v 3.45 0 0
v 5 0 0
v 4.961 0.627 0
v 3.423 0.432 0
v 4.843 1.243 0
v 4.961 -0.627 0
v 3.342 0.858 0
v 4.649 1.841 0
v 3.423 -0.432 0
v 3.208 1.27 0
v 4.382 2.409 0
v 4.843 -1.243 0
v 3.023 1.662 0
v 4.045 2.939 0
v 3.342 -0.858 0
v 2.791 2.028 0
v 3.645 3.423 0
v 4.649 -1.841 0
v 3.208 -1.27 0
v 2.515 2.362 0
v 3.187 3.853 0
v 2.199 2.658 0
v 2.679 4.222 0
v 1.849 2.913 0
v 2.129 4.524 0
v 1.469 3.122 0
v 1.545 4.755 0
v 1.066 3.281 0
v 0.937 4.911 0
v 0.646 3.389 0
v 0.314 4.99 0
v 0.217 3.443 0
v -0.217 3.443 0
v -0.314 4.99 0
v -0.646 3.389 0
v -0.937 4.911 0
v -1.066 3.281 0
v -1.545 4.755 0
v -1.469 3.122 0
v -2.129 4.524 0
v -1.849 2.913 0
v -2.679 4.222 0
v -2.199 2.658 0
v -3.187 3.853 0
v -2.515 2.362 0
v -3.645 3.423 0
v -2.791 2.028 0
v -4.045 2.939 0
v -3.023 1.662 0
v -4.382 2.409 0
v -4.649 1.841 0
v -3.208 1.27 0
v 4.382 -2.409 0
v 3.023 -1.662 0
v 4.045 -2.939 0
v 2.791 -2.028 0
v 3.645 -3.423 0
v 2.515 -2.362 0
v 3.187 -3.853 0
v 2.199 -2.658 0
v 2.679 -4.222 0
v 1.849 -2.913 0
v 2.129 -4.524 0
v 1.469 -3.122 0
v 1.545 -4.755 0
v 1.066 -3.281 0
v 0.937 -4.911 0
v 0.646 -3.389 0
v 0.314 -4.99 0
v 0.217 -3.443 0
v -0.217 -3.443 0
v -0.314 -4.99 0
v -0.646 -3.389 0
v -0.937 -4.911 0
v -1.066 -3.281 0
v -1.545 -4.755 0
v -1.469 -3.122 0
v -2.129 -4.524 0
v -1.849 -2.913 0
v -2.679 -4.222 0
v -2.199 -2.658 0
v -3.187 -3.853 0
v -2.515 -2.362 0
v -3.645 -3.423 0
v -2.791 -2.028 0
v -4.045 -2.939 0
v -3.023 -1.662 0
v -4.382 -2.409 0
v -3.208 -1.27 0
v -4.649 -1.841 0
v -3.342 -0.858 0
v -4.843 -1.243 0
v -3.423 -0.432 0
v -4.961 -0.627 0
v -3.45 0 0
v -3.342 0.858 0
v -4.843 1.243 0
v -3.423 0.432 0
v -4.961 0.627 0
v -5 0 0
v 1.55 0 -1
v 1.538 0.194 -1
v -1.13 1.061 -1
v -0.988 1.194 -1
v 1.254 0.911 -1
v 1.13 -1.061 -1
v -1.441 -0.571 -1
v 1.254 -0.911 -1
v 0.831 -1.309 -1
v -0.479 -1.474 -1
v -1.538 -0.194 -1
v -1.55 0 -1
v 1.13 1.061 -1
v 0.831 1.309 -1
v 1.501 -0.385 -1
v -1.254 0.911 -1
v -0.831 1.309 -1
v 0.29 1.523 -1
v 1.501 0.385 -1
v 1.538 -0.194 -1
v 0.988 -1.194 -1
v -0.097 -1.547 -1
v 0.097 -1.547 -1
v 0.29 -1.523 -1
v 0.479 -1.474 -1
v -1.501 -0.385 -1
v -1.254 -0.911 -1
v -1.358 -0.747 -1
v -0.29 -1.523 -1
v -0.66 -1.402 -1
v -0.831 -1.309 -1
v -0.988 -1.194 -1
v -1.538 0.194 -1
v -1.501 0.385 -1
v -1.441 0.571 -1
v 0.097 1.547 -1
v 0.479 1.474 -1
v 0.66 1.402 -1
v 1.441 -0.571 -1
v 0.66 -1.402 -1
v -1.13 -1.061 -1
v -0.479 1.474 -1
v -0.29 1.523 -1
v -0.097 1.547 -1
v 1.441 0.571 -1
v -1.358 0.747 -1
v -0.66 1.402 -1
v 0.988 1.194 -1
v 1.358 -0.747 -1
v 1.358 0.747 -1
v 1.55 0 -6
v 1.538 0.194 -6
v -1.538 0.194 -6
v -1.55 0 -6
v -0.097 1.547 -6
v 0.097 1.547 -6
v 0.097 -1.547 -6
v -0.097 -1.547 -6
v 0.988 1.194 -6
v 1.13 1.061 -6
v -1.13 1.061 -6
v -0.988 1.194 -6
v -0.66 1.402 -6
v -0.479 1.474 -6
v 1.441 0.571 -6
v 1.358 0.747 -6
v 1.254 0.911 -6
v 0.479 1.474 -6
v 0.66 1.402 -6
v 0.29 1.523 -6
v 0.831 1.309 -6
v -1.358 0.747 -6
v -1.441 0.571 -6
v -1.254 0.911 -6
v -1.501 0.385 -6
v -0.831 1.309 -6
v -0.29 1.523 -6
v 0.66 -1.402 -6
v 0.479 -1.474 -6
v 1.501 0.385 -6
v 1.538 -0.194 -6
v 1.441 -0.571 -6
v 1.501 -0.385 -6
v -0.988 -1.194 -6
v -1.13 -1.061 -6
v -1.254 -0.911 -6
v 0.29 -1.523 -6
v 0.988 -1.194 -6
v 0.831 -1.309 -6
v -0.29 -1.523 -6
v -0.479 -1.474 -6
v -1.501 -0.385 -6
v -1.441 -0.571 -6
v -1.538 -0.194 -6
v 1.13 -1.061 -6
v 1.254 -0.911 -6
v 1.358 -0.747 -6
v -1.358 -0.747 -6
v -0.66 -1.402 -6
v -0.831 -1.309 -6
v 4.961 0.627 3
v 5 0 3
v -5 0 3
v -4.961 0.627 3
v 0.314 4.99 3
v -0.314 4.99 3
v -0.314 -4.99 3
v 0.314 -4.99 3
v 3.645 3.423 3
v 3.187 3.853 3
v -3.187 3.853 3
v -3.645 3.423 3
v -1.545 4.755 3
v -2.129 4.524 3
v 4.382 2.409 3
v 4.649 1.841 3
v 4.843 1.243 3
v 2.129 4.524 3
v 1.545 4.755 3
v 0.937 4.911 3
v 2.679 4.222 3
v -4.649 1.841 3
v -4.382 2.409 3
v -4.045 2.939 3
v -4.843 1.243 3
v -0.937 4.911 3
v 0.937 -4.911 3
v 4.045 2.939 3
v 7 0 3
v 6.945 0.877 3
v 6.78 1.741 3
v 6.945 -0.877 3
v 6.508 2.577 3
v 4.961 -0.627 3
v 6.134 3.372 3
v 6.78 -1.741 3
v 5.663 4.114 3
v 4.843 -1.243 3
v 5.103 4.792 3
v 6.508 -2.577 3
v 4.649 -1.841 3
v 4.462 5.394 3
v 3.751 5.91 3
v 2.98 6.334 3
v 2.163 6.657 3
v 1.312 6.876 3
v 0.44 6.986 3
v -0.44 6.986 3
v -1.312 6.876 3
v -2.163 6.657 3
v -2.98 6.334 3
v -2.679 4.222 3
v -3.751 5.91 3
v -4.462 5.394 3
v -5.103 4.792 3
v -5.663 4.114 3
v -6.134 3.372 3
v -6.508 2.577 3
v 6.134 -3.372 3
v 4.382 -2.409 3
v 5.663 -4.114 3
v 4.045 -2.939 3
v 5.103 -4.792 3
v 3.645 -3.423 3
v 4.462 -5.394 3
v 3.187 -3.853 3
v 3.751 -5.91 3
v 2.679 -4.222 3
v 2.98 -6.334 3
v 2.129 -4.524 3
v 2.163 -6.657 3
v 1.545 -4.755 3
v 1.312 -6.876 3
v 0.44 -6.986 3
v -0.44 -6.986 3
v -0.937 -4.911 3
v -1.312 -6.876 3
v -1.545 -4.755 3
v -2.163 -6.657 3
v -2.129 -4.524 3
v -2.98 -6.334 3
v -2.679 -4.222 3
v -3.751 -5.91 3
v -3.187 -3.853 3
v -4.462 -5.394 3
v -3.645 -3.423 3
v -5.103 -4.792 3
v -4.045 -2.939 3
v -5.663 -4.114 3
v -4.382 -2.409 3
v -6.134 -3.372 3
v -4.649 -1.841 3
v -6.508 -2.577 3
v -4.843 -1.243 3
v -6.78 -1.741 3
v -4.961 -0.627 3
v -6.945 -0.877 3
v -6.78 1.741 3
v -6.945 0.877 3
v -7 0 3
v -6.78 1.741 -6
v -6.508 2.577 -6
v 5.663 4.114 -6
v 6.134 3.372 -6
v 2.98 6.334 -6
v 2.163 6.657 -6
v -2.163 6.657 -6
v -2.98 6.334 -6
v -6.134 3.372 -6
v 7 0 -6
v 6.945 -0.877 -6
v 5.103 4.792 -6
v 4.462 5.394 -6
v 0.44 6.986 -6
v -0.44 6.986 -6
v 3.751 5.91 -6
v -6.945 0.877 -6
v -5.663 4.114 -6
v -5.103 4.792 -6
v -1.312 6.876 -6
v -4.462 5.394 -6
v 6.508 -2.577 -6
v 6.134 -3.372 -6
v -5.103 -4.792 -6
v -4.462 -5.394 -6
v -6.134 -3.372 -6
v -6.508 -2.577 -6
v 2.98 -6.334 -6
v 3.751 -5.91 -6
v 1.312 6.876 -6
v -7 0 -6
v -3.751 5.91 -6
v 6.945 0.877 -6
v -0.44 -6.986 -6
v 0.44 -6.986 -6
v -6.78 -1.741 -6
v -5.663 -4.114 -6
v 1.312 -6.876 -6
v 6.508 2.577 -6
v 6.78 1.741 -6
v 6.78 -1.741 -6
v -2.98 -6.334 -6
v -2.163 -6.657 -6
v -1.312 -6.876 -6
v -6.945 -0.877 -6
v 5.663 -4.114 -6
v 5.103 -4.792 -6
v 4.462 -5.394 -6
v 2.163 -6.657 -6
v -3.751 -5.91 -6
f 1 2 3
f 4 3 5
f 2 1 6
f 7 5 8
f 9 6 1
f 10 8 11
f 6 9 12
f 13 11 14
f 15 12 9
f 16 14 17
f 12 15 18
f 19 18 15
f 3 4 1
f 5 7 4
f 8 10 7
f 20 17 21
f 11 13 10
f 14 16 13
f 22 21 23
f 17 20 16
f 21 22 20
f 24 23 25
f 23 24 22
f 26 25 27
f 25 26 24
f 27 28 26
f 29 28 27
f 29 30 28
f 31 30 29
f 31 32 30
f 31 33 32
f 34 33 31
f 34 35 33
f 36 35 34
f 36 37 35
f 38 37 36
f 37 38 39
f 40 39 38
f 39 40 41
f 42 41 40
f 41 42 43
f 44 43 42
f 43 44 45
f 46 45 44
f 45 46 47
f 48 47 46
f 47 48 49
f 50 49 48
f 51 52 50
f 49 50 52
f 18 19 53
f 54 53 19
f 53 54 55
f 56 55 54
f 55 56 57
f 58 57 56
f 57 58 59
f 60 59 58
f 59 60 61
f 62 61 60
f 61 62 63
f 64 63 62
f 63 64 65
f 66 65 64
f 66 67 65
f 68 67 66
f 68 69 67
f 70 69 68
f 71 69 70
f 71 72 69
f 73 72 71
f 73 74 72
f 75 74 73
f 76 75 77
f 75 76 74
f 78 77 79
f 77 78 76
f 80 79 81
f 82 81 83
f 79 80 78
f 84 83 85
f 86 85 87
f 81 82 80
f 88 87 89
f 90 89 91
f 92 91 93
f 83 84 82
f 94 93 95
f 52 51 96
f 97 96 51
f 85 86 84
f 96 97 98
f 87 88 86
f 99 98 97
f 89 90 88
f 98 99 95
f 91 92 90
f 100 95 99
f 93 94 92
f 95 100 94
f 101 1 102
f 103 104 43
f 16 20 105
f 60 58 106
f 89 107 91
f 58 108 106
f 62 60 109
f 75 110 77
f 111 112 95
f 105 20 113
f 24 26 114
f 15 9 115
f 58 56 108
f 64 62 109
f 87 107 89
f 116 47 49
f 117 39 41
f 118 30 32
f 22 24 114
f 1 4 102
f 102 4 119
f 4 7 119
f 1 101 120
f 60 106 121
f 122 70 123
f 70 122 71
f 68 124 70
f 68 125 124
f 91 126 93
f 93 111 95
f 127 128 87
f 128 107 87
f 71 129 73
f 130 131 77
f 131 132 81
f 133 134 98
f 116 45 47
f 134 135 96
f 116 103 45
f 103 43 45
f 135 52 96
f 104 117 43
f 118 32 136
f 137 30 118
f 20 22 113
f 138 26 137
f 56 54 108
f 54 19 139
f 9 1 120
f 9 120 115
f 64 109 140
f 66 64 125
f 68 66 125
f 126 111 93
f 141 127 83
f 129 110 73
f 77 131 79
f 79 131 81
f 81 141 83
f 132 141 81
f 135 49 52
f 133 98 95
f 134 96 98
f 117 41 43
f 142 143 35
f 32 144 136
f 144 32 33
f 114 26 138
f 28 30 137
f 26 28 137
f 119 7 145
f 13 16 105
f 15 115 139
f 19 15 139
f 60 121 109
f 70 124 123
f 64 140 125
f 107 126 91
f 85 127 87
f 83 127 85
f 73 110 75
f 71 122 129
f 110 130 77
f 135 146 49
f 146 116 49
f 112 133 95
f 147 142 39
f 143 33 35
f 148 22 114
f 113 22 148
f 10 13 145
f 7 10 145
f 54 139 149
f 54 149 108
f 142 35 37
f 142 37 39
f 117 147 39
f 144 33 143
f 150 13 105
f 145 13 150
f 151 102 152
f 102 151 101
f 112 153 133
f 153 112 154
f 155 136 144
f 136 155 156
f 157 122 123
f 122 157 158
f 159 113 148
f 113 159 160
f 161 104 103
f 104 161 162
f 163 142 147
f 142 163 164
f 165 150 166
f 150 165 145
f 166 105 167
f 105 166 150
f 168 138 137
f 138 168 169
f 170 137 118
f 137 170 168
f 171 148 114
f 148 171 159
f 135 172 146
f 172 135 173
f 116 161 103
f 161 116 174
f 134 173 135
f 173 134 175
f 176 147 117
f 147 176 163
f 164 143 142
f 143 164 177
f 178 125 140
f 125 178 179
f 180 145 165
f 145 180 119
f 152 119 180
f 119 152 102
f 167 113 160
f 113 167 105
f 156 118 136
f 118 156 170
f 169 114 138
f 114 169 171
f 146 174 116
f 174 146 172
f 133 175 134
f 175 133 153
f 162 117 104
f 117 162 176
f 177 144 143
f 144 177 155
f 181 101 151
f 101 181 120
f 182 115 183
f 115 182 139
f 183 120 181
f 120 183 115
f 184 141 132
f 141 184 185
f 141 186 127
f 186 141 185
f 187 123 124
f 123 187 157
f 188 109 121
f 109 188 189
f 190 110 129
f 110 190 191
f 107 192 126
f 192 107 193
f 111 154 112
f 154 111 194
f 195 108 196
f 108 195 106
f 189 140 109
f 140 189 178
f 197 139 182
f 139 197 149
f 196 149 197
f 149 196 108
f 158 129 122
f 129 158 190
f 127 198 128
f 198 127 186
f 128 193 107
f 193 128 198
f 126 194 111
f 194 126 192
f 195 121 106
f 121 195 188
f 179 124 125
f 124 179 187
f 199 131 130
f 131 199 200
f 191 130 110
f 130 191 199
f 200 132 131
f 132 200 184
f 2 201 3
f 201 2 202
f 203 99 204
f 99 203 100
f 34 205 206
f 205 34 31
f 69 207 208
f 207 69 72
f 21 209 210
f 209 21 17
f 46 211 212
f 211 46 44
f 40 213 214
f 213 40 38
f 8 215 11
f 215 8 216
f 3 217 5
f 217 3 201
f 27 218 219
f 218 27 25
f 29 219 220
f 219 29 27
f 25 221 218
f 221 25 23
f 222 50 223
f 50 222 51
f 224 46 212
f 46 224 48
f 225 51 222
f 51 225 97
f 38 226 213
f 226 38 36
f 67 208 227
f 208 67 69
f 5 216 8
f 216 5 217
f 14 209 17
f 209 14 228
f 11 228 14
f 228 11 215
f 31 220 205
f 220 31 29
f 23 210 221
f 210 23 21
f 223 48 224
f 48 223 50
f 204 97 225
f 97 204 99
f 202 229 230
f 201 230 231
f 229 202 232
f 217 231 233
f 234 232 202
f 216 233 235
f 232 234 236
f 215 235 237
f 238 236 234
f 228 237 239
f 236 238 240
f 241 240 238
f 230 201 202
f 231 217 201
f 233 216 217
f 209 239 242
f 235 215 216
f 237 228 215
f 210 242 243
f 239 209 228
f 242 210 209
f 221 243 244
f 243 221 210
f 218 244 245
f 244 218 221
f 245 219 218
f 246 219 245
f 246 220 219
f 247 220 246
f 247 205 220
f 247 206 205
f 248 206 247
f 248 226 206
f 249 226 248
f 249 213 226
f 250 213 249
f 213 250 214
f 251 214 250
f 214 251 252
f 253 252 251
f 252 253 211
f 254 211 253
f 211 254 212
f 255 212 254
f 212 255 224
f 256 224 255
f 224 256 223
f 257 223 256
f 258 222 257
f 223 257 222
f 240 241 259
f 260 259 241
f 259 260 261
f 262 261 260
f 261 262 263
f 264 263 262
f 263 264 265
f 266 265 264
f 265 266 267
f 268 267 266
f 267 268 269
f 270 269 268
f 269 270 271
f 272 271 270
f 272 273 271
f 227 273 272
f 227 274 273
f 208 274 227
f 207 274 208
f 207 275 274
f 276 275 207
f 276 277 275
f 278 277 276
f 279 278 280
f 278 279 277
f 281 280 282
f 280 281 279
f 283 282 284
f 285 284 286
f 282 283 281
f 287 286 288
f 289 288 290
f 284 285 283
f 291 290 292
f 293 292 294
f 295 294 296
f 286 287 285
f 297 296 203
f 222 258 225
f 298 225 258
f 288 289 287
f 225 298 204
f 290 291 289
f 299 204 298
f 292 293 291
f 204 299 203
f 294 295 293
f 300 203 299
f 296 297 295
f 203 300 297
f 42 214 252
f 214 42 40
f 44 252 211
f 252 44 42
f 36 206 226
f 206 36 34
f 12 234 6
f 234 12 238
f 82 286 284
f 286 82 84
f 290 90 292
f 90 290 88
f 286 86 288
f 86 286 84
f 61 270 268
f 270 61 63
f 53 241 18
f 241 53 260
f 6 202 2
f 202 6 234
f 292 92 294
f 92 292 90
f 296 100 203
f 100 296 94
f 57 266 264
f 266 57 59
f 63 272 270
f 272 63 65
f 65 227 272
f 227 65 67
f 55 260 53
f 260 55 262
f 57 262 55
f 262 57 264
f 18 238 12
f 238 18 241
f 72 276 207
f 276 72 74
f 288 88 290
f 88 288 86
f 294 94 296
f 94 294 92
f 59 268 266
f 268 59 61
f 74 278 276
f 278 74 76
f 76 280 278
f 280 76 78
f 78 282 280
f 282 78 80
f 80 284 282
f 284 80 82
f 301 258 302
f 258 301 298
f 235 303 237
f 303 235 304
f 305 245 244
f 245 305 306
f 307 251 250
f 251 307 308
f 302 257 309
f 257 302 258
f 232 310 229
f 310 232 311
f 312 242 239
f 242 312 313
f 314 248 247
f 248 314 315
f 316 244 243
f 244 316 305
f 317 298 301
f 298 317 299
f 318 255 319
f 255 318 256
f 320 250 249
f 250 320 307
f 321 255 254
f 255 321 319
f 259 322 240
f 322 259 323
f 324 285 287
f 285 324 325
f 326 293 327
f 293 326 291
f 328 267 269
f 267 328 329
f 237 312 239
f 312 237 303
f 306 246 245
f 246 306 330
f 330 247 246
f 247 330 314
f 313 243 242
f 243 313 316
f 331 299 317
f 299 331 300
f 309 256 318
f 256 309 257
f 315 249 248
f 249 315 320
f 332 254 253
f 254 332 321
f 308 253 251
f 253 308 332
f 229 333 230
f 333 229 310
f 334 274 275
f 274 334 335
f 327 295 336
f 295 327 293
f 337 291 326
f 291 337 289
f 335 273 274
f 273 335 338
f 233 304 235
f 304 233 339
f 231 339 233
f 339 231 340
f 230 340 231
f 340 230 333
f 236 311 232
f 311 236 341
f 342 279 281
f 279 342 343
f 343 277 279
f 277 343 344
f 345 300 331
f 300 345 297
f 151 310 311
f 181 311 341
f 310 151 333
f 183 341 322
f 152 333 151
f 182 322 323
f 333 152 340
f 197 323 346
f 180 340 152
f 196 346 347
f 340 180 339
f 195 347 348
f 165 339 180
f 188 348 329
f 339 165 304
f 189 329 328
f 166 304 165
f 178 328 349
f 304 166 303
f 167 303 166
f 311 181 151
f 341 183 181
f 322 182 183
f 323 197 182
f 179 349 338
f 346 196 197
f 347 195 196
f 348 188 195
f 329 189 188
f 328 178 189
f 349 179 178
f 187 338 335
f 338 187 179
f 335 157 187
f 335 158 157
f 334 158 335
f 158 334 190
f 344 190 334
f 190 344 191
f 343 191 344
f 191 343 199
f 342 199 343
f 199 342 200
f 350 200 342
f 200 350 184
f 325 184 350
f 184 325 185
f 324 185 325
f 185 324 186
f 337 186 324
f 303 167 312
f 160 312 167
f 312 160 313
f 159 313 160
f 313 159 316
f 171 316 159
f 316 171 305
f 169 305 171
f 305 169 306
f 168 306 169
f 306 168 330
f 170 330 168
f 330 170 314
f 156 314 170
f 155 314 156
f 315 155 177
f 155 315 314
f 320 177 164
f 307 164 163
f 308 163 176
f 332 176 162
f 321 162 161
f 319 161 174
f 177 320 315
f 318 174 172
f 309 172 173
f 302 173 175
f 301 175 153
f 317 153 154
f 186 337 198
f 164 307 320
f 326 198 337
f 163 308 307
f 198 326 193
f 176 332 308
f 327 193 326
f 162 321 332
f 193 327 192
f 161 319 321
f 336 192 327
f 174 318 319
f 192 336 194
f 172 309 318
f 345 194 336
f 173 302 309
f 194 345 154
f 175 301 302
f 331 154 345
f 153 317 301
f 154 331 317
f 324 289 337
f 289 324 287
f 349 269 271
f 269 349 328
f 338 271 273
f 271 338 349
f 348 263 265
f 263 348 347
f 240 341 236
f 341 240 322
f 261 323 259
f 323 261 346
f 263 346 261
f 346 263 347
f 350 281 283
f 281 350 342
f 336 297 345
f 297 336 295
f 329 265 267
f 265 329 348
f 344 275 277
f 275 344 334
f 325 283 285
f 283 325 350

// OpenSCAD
$fn = 50;

difference() {
	union() {
		translate(v = [0, 0, -6.0]) {
			cylinder(h = 9, r = 7.0);
		}
	}
	union() {
		translate(v = [0, 0, 0]) {
			rotate(a = [0, 0, 0]) {
				difference() {
					union() {
						translate(v = [0, 0, -9.0]) {
							cylinder(h = 9, r = 1.25);
						}
						translate(v = [0, 0, -1.0]) {
							cylinder(h = 1.0, r1 = 1.55, r2 = 3.45);
						}
						translate(v = [0, 0, -9.0]) {
							cylinder(h = 9, r = 1.55);
						}
						translate(v = [0, 0, -9.0]) {
							cylinder(h = 9, r = 1.25);
						}
					}
					union();
				}
			}
		}
		#cylinder(h = 3, r = 5.0);
	}
}
